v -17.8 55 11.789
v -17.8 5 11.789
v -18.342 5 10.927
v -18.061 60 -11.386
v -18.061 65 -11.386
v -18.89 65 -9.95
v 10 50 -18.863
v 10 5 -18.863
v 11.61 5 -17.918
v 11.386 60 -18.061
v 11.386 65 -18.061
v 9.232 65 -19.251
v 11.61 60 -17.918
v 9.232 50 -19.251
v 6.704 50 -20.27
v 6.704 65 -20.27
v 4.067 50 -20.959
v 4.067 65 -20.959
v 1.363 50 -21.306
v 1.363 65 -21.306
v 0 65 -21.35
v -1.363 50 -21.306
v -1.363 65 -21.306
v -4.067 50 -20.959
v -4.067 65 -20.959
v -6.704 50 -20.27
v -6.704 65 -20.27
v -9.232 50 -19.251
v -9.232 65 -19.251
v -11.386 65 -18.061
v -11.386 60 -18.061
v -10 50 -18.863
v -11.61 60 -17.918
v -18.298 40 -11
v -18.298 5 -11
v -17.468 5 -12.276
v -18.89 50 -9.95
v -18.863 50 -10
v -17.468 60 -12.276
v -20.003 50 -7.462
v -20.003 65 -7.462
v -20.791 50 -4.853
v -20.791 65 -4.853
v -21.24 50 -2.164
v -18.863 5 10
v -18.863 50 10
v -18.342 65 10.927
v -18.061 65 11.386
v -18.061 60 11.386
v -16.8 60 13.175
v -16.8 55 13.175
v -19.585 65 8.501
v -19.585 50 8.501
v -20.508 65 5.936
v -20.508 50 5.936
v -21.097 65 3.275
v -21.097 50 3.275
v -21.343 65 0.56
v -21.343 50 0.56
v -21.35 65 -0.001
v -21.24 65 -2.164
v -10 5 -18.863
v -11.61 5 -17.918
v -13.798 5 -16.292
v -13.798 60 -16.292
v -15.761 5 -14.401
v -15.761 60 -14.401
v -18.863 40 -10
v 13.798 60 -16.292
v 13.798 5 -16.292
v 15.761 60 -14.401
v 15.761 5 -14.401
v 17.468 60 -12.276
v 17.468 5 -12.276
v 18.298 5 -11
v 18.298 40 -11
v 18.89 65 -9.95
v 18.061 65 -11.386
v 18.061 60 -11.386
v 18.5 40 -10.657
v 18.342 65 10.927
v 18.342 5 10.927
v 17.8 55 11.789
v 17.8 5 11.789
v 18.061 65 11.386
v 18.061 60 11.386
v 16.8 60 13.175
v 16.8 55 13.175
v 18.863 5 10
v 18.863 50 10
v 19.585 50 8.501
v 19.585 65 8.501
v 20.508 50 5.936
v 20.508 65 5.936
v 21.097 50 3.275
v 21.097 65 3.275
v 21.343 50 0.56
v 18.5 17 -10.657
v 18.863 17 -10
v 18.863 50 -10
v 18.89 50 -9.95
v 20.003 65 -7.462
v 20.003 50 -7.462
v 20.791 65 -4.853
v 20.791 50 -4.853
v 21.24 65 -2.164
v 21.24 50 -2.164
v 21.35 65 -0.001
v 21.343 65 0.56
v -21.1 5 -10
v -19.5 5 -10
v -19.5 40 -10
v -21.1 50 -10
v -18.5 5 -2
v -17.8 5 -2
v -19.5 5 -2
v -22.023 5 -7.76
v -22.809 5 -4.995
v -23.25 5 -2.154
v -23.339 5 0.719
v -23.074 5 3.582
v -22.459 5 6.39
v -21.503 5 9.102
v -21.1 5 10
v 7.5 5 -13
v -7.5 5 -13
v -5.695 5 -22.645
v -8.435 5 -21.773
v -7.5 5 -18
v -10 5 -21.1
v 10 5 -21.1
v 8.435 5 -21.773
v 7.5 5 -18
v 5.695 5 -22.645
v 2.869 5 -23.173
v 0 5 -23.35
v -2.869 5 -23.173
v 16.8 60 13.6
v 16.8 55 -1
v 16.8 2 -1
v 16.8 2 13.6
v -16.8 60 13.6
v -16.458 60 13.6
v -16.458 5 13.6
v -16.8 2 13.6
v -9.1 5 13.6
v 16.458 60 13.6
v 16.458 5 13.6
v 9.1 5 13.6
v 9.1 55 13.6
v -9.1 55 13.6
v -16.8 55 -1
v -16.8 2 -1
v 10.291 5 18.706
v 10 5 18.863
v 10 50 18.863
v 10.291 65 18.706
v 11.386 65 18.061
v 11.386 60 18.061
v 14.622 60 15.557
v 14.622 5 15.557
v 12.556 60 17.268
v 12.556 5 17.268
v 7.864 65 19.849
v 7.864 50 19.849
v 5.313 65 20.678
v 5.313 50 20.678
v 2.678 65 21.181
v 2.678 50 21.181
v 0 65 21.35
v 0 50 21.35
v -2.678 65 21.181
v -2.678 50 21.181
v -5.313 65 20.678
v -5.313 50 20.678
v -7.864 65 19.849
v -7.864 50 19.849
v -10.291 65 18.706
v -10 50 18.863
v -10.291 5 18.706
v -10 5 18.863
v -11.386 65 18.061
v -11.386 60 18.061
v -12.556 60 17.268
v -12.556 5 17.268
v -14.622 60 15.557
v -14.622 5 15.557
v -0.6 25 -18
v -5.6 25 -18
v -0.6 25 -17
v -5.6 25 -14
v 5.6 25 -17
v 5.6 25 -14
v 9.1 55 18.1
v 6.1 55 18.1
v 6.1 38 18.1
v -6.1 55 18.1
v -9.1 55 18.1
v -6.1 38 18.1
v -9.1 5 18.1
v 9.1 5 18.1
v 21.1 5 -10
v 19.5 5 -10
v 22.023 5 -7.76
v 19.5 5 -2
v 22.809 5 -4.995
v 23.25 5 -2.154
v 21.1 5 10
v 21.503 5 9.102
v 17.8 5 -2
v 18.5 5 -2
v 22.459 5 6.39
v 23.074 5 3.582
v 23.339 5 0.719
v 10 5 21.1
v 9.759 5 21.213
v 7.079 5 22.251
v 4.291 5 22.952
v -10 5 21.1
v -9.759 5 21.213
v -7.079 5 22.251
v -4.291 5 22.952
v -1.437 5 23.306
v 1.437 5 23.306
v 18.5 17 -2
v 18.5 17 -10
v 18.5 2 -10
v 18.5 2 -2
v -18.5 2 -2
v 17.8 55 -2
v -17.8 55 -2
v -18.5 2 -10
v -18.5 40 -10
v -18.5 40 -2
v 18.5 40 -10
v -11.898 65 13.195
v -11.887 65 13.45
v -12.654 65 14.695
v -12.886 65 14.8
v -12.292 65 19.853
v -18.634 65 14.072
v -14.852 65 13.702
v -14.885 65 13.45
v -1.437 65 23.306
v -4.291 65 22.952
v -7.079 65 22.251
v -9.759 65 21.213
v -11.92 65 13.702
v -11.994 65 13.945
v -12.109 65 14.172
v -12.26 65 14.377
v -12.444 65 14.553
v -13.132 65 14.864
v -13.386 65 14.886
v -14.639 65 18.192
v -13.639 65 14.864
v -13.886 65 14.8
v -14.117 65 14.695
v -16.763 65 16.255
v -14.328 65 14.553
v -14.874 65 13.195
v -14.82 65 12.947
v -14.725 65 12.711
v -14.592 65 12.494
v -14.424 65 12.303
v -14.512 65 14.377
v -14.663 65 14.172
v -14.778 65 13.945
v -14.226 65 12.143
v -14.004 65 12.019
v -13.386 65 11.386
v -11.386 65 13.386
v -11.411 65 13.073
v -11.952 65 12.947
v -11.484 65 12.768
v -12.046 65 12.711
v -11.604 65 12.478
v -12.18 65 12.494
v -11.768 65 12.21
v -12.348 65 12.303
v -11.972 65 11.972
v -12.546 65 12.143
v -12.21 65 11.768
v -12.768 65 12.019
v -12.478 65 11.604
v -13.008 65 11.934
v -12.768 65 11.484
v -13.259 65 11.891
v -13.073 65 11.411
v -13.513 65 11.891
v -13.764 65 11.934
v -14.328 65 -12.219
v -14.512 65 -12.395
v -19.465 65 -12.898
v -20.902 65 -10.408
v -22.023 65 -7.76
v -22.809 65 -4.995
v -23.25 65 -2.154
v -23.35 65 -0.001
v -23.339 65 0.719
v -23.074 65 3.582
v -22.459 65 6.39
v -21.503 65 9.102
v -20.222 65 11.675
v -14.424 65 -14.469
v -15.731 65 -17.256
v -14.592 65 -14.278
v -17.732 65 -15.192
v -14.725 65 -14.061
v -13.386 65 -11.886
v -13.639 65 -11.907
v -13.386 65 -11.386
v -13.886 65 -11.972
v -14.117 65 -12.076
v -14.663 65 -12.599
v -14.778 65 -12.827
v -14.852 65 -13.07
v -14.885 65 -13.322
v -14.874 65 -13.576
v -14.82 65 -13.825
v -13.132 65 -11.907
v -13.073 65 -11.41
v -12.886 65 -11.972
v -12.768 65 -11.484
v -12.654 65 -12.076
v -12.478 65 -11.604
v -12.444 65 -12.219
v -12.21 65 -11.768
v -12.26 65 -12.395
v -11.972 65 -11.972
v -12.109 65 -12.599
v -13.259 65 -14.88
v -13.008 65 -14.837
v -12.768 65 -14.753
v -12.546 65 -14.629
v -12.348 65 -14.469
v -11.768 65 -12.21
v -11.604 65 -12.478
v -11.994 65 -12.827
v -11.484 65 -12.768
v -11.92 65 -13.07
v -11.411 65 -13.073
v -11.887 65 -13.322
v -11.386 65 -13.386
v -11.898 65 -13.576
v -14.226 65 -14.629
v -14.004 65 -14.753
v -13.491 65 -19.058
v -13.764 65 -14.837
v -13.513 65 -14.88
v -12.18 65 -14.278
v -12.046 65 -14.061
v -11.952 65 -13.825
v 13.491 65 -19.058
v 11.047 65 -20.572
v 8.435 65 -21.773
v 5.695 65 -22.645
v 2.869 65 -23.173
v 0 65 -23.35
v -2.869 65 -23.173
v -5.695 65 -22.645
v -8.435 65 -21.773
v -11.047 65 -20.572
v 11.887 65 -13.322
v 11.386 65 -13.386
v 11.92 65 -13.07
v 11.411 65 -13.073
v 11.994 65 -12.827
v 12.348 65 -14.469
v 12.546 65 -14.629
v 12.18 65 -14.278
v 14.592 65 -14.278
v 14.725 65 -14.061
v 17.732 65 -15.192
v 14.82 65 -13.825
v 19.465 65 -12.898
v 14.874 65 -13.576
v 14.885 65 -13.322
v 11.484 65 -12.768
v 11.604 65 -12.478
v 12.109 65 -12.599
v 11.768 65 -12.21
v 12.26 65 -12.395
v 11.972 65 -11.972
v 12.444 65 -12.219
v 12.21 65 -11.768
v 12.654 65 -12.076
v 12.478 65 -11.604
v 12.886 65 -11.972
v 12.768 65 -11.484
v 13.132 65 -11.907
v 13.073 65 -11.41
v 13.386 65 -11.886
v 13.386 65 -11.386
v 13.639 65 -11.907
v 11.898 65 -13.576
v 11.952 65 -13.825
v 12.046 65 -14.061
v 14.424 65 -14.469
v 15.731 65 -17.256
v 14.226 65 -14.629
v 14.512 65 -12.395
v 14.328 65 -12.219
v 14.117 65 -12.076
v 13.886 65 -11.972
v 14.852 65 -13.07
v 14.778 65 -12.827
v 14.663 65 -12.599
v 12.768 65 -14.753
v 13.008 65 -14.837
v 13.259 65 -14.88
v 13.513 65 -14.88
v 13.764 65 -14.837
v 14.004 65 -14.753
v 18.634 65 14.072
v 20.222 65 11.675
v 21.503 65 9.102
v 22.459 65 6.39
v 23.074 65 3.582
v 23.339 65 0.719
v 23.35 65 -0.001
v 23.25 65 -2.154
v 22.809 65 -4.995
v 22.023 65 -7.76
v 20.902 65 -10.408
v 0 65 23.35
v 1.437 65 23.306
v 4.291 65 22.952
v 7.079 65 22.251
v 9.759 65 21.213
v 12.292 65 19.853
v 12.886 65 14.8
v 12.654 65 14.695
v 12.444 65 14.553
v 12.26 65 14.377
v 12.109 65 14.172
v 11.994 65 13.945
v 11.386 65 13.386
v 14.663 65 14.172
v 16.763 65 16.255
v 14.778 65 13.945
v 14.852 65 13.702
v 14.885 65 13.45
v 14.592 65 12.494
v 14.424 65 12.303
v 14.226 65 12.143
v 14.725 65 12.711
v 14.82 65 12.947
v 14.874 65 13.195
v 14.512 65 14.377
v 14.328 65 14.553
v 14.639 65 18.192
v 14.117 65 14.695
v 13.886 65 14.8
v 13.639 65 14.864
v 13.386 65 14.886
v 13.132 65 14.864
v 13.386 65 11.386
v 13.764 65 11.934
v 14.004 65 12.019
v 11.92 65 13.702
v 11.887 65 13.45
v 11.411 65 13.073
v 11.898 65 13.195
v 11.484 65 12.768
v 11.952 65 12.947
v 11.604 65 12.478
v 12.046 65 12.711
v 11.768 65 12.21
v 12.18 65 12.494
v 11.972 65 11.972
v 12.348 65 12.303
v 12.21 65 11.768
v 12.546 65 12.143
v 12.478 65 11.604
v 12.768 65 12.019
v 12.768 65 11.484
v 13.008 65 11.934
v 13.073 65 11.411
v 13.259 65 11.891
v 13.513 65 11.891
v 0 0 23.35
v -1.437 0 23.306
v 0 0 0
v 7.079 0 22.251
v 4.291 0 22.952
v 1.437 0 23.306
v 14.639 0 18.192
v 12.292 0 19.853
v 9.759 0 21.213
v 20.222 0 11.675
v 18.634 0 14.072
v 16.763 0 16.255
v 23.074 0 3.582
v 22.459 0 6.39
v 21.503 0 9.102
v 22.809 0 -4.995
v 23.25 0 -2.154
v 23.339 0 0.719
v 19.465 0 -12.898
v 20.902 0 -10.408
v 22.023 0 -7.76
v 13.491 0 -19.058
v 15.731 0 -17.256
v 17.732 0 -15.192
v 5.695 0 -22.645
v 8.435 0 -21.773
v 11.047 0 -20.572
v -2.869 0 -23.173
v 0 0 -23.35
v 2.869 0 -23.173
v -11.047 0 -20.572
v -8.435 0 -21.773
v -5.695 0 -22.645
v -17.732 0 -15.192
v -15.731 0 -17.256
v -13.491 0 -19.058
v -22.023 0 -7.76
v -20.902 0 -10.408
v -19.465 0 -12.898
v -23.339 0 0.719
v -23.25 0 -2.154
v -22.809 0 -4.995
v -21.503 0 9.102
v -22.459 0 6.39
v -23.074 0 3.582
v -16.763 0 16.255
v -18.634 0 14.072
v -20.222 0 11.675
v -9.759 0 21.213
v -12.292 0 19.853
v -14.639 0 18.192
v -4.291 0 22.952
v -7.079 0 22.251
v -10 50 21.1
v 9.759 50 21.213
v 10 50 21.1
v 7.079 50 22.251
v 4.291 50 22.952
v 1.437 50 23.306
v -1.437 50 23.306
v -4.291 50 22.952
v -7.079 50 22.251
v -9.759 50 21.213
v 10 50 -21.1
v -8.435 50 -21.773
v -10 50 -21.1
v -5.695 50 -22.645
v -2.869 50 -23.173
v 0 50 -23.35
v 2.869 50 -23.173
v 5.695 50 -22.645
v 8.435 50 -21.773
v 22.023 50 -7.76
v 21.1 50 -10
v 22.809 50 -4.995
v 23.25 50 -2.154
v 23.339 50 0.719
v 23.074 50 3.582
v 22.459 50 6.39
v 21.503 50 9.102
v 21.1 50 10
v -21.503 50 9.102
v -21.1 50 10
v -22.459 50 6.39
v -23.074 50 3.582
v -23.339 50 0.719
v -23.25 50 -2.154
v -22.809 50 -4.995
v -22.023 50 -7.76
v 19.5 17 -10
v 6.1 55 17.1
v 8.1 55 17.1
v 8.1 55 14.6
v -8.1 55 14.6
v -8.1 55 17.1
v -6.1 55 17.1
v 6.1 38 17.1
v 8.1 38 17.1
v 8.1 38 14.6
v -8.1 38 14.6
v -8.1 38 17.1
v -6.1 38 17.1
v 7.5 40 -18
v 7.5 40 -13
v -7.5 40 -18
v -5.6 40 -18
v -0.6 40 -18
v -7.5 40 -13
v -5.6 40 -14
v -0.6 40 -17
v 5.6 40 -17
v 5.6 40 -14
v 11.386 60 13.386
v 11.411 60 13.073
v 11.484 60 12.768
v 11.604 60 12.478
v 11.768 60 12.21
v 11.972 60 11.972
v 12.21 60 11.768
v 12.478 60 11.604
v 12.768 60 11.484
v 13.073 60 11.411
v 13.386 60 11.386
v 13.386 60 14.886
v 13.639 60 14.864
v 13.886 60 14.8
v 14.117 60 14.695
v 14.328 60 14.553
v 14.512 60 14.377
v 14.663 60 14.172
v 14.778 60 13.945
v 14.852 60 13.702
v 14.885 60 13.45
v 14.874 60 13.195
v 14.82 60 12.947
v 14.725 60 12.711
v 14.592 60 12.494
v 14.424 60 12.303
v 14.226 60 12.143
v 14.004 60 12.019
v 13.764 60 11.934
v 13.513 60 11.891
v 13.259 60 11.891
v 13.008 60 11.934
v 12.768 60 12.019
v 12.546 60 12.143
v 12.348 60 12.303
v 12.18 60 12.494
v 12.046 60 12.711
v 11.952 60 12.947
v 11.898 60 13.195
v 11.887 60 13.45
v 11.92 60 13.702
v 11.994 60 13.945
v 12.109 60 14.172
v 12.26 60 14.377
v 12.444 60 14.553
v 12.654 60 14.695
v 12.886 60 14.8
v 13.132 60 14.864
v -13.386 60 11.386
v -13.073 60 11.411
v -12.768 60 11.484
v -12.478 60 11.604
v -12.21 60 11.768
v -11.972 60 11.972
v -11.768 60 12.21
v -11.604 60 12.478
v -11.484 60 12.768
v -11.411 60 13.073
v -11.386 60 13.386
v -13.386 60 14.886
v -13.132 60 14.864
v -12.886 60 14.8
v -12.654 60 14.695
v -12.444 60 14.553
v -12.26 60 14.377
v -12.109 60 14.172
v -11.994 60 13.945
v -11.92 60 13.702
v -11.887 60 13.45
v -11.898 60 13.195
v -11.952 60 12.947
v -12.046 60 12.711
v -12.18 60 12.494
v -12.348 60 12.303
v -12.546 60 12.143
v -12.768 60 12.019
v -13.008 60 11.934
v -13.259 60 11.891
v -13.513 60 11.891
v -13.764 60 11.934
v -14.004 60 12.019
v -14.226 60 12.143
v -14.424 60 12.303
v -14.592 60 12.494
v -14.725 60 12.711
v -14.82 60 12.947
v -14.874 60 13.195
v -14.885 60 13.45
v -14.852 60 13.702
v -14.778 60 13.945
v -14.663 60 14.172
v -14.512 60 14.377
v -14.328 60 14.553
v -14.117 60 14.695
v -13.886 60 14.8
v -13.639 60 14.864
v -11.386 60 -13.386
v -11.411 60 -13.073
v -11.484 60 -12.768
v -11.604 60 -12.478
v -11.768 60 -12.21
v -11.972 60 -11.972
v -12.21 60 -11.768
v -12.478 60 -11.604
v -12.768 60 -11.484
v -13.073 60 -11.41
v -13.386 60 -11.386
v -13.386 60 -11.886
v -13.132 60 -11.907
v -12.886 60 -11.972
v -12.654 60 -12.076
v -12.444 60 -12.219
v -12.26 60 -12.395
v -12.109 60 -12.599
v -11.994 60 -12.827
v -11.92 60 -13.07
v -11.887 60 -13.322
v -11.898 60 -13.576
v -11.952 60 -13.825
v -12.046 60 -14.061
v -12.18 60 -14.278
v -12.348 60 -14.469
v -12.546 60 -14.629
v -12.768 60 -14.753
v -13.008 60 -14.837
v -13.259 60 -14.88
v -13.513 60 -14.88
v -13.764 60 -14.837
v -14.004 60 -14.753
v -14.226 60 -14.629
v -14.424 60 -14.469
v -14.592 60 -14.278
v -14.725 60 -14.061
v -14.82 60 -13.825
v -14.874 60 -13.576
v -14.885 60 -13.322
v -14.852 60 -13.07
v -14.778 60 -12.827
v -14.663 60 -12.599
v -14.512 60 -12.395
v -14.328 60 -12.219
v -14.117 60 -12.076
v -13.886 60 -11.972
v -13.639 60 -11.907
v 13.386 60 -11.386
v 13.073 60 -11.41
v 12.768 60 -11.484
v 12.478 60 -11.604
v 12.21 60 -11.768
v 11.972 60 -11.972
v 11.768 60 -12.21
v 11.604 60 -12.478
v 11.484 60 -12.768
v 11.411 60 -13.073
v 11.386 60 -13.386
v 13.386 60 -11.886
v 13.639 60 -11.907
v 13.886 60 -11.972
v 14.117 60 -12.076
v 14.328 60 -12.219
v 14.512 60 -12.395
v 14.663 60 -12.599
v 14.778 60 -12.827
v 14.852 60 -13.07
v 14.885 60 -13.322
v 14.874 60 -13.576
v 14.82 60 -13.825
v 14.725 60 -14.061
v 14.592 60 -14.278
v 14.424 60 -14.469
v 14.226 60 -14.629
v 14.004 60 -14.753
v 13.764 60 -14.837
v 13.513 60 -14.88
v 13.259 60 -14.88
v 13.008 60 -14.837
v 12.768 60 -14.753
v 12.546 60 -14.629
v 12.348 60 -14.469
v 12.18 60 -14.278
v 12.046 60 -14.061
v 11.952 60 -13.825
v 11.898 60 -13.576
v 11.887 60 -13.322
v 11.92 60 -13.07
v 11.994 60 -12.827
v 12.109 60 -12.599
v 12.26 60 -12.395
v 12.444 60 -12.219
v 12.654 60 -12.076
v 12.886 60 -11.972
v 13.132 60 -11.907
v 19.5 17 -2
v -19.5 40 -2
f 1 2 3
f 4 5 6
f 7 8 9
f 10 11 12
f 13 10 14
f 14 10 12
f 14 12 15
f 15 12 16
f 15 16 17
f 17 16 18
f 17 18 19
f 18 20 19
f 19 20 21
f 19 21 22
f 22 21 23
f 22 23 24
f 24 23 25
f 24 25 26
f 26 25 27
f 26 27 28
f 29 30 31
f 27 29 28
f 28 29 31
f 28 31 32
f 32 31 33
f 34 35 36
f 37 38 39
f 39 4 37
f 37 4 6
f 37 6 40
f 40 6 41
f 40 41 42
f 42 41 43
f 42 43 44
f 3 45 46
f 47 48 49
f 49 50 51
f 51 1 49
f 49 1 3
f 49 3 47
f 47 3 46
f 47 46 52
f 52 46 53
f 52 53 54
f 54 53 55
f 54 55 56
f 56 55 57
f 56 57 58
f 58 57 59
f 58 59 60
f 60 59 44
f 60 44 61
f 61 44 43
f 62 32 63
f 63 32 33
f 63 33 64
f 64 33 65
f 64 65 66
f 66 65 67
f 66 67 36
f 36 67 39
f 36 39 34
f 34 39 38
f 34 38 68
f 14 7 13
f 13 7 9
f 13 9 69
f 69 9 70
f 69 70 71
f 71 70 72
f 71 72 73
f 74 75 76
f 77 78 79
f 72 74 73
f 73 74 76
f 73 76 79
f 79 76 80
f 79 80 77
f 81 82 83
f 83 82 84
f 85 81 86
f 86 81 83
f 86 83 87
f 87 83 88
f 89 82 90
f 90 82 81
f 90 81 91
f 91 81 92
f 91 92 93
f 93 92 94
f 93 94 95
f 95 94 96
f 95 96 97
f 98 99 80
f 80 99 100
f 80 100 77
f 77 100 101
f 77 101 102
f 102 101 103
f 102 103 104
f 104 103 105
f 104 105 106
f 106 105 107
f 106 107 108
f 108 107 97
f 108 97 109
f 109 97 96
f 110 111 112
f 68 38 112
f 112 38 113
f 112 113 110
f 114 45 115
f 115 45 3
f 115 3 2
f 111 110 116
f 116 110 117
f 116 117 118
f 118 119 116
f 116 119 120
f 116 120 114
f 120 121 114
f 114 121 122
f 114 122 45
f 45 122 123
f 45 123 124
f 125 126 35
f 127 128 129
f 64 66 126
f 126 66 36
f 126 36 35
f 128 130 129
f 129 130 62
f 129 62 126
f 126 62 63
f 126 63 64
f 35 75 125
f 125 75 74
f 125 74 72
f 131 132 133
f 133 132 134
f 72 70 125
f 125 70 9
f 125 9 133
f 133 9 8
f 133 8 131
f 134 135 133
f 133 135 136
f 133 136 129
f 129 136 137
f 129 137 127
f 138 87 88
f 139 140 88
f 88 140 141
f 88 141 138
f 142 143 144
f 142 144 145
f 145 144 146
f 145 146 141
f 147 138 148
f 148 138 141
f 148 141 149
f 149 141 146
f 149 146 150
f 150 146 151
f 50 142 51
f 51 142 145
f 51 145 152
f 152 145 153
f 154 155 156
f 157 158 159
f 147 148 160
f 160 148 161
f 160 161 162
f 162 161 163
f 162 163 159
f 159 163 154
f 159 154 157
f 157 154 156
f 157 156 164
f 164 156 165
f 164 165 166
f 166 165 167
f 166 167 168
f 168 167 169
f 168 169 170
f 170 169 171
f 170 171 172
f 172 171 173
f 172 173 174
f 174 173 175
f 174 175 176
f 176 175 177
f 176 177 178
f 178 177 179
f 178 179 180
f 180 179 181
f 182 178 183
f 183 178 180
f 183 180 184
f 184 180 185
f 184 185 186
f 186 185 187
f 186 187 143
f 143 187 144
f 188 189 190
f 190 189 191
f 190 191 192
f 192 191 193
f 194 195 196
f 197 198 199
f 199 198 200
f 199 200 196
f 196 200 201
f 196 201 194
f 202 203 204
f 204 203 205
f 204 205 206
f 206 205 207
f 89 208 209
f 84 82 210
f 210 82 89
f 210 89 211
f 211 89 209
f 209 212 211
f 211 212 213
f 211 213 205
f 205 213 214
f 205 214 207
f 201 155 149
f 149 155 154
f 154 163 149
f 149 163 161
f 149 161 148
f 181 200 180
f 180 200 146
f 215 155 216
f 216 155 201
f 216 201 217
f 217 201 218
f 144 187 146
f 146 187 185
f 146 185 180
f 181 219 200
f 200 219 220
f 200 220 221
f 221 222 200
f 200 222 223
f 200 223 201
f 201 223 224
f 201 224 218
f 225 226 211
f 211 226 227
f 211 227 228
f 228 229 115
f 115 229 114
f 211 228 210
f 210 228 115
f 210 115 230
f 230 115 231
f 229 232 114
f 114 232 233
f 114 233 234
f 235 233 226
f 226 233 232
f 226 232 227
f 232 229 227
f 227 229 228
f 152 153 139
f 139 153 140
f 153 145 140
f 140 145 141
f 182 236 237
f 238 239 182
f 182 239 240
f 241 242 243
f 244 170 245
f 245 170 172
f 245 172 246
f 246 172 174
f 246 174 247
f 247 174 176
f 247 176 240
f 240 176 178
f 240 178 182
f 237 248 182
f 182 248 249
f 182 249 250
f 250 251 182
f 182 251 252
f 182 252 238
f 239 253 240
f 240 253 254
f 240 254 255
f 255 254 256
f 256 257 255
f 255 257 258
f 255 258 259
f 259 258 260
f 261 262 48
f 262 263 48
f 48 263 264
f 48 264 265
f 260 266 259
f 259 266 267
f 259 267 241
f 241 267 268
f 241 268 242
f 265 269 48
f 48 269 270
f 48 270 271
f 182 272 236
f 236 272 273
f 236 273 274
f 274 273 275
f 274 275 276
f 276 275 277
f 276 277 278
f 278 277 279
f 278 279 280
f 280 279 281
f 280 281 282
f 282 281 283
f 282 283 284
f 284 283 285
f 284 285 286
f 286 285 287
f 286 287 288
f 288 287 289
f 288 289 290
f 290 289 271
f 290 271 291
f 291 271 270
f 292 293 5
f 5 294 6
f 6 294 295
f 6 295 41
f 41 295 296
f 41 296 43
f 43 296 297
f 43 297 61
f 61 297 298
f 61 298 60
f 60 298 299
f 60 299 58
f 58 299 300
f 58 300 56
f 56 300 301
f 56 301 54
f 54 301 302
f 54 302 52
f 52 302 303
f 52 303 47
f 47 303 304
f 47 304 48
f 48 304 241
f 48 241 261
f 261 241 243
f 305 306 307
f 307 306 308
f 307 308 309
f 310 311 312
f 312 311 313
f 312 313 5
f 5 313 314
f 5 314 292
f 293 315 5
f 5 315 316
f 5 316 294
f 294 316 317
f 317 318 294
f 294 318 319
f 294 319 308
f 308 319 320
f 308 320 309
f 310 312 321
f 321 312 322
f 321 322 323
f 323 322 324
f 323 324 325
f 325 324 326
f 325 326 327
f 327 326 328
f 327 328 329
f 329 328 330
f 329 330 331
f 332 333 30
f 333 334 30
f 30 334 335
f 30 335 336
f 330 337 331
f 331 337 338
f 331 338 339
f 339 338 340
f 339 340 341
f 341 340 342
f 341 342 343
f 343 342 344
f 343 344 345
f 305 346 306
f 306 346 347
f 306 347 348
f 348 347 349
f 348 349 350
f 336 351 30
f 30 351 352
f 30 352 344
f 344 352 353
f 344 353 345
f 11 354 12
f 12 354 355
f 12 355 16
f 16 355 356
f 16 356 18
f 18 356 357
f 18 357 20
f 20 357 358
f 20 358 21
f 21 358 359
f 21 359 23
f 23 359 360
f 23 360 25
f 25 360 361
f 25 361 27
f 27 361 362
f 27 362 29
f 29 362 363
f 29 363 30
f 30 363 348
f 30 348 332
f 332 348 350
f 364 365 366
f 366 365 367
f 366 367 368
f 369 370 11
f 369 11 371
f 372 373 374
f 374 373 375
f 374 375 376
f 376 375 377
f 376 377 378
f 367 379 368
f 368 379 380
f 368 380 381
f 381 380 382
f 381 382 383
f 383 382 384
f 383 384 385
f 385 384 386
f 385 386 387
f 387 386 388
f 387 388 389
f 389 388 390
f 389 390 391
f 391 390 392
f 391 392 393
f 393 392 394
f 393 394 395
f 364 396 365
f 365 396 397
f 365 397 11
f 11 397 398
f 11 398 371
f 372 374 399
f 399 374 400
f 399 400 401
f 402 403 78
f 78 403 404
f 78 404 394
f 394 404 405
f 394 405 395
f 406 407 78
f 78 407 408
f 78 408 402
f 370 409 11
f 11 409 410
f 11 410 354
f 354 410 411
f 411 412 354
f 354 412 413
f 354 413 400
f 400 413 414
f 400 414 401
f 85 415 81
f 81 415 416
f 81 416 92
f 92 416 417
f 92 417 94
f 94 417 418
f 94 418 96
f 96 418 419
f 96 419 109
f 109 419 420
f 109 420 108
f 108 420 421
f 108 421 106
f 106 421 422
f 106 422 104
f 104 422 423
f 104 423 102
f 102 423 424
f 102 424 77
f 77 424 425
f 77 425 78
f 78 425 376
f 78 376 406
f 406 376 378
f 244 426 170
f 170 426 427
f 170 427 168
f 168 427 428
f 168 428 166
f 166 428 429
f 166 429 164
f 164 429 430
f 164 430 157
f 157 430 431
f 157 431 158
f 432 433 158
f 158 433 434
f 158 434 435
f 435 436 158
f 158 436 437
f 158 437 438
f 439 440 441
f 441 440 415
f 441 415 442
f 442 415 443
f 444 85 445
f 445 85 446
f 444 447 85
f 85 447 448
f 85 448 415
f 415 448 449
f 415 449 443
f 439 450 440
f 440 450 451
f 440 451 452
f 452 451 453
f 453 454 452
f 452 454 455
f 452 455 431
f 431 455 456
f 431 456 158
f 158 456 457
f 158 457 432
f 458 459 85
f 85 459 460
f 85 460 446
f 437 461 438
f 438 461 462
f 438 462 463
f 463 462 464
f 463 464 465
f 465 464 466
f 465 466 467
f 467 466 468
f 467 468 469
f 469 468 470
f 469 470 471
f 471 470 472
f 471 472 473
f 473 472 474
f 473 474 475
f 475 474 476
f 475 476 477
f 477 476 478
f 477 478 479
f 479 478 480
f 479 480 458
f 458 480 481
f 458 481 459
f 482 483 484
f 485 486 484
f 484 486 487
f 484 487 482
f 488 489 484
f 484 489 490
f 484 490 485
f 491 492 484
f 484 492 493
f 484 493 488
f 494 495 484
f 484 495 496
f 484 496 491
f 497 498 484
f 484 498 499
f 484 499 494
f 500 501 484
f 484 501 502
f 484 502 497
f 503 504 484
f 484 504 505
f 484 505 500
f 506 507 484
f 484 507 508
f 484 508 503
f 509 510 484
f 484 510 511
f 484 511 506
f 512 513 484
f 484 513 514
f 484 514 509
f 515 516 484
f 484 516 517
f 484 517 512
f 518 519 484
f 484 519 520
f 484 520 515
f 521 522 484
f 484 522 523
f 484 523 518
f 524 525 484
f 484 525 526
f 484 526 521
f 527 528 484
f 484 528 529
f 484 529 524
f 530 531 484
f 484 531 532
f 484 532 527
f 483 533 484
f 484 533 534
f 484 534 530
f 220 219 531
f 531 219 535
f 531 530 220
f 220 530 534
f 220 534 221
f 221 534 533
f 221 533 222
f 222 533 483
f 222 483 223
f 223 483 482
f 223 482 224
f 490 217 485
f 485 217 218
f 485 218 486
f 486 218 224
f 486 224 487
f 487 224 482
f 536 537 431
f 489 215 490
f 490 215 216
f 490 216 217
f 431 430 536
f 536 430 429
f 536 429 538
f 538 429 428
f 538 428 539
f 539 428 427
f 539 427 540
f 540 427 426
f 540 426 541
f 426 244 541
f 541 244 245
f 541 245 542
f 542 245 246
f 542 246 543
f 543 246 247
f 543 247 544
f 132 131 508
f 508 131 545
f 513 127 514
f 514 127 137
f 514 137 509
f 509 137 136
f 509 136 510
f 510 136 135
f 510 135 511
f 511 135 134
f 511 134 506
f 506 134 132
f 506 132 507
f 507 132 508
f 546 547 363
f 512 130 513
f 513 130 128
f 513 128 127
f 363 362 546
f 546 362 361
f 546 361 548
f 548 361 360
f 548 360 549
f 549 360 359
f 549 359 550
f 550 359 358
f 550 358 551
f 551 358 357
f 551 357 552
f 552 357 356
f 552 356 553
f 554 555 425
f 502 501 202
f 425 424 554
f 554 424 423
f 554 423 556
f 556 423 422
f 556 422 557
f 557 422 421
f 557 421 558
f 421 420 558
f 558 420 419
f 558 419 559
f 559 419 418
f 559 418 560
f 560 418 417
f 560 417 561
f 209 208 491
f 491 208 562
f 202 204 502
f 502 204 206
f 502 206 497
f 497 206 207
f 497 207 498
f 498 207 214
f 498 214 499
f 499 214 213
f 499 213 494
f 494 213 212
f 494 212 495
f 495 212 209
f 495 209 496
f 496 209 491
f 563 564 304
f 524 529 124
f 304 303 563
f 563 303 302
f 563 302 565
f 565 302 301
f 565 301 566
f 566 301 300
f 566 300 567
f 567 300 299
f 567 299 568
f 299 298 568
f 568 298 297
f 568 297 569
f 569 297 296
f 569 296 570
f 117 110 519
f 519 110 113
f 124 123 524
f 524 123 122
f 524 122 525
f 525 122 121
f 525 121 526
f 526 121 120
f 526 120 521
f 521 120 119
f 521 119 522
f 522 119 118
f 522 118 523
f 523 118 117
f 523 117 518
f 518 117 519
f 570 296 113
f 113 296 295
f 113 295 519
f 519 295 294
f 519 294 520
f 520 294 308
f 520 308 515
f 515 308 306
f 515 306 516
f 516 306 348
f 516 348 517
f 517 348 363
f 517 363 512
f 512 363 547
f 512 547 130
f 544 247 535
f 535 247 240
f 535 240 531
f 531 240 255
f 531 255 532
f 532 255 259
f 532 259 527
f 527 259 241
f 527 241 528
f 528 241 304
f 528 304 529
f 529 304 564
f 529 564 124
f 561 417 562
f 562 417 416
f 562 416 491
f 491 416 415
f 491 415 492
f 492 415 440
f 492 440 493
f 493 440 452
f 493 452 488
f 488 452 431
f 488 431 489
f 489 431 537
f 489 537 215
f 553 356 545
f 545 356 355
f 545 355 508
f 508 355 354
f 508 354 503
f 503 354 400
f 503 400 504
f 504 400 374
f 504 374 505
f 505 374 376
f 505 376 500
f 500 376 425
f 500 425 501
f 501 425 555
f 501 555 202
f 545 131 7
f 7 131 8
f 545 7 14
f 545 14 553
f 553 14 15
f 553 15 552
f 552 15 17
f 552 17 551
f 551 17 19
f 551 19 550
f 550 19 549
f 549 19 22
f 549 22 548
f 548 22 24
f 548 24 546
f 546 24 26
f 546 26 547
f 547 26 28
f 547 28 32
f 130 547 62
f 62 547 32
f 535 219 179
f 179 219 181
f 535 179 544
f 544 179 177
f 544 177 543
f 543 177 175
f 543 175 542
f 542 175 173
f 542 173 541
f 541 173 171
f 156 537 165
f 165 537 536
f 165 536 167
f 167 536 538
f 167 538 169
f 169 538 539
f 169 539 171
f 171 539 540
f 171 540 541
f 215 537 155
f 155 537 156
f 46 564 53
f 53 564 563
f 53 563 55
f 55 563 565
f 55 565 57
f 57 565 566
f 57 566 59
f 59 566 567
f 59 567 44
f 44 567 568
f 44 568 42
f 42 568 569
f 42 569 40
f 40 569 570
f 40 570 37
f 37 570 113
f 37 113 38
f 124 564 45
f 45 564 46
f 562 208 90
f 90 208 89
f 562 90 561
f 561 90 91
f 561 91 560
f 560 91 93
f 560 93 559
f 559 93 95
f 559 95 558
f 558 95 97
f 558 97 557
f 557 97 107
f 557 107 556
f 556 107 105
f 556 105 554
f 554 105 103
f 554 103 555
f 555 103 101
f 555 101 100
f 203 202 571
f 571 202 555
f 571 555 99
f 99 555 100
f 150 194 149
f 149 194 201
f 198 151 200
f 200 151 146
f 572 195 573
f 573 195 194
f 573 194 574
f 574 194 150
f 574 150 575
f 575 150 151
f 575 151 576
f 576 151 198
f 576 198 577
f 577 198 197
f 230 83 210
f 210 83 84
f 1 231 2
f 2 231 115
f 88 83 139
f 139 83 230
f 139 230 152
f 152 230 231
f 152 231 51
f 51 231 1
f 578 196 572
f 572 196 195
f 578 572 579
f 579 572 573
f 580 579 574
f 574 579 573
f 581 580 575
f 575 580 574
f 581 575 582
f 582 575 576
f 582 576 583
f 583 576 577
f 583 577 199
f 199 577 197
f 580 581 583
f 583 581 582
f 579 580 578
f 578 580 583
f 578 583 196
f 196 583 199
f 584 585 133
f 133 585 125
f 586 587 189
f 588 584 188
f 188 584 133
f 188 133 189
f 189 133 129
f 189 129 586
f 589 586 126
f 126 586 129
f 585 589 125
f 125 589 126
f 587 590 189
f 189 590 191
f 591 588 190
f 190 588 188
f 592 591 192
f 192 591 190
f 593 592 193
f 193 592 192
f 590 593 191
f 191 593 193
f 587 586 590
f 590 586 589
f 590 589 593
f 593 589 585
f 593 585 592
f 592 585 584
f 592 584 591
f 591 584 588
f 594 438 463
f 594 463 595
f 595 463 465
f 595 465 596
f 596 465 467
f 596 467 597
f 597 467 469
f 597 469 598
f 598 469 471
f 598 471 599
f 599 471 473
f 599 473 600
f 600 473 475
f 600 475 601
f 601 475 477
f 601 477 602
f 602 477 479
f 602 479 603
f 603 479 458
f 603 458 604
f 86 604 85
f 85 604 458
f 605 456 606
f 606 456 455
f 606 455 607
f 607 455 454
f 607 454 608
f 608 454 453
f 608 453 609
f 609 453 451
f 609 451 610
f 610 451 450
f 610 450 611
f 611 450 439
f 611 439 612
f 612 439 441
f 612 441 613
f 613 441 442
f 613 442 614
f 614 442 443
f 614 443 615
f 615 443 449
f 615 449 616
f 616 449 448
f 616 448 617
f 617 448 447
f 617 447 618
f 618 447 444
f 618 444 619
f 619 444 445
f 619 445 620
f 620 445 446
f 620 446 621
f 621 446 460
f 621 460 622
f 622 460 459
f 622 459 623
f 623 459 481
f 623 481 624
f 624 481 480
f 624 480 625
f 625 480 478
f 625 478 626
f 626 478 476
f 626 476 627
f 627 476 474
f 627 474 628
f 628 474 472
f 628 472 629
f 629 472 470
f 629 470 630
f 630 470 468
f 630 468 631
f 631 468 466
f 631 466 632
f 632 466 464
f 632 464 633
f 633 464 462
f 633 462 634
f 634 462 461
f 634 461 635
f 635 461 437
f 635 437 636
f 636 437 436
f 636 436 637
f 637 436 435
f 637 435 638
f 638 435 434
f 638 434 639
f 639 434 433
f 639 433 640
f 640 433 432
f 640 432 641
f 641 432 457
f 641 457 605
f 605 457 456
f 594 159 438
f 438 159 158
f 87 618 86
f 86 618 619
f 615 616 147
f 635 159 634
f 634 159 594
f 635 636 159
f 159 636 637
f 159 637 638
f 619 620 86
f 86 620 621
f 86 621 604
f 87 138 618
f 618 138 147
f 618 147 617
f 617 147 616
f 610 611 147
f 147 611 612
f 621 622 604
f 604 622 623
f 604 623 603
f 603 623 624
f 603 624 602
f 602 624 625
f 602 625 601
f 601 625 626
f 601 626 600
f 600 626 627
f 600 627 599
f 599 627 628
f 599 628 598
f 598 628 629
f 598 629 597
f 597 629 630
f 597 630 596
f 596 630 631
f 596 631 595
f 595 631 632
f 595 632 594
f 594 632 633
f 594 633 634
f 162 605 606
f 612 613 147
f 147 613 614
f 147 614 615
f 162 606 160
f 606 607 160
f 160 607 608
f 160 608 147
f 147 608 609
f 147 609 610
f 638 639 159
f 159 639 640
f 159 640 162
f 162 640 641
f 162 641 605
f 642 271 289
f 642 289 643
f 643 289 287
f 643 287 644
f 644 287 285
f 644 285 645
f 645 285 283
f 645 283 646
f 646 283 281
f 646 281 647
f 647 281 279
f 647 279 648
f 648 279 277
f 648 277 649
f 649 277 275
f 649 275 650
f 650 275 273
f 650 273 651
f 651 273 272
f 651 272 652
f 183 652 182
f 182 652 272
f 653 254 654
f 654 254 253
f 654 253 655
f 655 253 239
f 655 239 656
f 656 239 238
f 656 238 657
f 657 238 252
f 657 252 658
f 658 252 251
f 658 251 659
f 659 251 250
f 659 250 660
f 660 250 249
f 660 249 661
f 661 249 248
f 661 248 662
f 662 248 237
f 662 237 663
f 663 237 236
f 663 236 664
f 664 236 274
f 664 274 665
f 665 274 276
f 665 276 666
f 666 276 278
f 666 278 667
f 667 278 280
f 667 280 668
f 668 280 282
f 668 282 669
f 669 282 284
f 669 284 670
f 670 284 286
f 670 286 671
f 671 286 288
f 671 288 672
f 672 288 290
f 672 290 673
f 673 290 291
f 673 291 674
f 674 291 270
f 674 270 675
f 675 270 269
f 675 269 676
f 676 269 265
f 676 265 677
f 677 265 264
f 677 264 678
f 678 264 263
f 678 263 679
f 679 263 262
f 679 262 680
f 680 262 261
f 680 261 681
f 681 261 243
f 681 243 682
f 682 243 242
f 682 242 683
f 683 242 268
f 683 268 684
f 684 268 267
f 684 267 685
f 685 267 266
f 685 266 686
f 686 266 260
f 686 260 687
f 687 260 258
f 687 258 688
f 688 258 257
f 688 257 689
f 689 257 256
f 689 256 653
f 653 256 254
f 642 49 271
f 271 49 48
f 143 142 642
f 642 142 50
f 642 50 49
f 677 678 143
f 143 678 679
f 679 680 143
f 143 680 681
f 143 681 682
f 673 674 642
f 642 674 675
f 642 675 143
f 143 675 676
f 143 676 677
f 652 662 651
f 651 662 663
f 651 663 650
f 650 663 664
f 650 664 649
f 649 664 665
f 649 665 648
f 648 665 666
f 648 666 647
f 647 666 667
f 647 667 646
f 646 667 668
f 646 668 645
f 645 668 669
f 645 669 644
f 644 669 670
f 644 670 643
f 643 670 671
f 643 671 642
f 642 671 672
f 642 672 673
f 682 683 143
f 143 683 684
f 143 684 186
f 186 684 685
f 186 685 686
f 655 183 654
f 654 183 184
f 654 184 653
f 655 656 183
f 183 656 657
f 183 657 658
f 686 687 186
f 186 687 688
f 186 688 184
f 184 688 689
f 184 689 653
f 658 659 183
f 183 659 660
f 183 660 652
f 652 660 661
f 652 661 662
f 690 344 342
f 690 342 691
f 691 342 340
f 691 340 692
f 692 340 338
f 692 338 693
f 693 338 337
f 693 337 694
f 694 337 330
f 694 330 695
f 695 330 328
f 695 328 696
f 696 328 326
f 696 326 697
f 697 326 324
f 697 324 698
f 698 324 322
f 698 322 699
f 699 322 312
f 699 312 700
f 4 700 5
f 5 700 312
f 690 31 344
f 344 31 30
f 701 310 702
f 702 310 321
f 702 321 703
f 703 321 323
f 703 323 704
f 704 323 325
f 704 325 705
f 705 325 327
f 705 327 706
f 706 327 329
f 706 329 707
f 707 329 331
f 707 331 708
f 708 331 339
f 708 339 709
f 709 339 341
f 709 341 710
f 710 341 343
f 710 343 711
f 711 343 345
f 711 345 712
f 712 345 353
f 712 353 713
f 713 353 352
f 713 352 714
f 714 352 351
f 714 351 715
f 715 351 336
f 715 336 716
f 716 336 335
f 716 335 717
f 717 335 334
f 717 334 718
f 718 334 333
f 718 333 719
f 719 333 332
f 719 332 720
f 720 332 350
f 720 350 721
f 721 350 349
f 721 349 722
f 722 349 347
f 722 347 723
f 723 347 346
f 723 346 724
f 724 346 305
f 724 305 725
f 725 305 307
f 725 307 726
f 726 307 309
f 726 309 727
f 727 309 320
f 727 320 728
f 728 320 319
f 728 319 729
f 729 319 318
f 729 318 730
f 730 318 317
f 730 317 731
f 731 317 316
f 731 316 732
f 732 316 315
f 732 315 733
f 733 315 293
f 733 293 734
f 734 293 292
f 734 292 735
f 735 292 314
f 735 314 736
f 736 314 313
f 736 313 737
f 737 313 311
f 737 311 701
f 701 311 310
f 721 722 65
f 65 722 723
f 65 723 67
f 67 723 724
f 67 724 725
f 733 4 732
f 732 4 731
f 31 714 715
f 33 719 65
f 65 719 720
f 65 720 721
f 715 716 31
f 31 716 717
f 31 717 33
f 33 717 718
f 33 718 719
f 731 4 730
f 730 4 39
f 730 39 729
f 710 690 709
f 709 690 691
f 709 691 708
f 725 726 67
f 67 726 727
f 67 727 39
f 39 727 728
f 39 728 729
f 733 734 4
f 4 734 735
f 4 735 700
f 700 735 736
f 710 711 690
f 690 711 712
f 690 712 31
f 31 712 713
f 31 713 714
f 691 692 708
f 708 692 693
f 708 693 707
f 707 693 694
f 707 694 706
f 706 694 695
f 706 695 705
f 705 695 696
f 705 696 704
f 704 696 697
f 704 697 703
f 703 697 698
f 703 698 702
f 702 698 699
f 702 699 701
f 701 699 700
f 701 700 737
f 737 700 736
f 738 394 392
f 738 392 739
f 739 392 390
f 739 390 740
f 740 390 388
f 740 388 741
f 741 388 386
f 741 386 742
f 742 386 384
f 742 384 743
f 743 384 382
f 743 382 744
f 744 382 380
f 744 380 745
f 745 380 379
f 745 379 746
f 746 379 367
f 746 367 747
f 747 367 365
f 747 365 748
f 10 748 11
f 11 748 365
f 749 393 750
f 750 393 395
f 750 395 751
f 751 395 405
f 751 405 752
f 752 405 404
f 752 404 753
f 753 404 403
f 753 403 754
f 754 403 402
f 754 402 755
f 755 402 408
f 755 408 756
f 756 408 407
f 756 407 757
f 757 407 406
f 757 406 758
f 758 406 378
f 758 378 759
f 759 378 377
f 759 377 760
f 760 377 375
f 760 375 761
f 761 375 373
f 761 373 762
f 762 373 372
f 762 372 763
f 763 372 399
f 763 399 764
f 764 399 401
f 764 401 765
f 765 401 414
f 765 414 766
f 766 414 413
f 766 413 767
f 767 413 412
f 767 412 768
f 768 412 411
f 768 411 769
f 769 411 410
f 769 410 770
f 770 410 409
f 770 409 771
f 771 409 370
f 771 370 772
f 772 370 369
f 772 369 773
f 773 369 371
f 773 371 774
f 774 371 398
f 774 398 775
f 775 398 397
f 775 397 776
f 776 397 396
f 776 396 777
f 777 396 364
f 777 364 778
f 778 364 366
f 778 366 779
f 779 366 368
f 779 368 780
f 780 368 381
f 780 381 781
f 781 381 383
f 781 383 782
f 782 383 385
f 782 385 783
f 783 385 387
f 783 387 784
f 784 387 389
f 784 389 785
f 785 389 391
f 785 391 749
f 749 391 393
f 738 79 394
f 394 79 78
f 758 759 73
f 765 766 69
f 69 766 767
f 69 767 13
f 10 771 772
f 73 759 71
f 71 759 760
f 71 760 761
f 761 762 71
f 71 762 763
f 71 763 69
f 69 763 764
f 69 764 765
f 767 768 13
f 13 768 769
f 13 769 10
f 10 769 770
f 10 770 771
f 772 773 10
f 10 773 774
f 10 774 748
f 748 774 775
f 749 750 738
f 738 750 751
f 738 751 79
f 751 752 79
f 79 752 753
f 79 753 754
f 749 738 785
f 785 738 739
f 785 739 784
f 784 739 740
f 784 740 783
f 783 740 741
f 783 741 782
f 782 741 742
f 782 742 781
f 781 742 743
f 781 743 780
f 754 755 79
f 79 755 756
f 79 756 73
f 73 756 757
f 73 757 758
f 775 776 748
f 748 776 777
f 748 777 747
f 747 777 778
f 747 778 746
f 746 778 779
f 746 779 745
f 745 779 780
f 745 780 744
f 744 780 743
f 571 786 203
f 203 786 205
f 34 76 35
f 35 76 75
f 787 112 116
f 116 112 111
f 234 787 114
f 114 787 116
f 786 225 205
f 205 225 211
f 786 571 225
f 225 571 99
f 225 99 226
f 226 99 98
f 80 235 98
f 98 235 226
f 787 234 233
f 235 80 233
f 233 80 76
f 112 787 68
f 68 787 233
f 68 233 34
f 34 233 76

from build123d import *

# Parameters (mm, degrees)
ESQUISSE1_R                  = 23.35
BOSS_EXTRU_1_DEPTH           = 5
ESQUISSE2_W                  = 37
ESQUISSE2_H                  = 8
ESQUISSE2_W_2                = 33.6
ESQUISSE2_H_2                = 14.6
ENL_V_MAT_EXTRU_4_DEPTH      = 3
ESQUISSE10_R                 = 23.35
BOSS_EXTRU_2_DEPTH           = 60
ENL_V_MAT_EXTRU_5_DEPTH      = 73.90709842
ENL_V_MAT_EXTRU_5_DEPTH_BACK = 73.90709842
ESQUISSE11_W                 = 20
ESQUISSE11_H                 = 45
ENL_V_MAT_EXTRU_6_DEPTH      = 73.90709842
ENL_V_MAT_EXTRU_6_DEPTH_BACK = 73.90709842
ESQUISSE12_W                 = 20
ESQUISSE12_H                 = 45
ESQUISSE13_W                 = 18.2
ESQUISSE13_H                 = 4.5
ESQUISSE13_W_2               = 16.2
ESQUISSE13_H_2               = 2.5
BOSS_EXTRU_4_DEPTH           = 50
ENL_V_MAT_EXTRU_7_DEPTH      = 65.151734193
ENL_V_MAT_EXTRU_7_DEPTH_BACK = 17
ESQUISSE16_W                 = 15
ESQUISSE16_H                 = 5
BOSS_EXTRU_5_DEPTH           = 20
BOSS_EXTRU_6_DEPTH           = 15
BOSS_EXTRU_7_START           = -5
ESQUISSE18_R                 = 1.5
BOSS_EXTRU_7_DEPTH           = 5
BOSS_EXTRU_8_DEPTH           = 12
BOSS_EXTRU_9_DEPTH           = 23


with BuildPart() as part:
    # Esquisse1 → Boss.-Extru.1 (new body)
    with BuildSketch(Plane(origin=(0, 0, 0), x_dir=(1, 0, 0), z_dir=(0, 1, 0))):
        with Locations(Location((0, 0, 0), (0, 0, 270))):
            Circle(ESQUISSE1_R)
    extrude(amount=BOSS_EXTRU_1_DEPTH)

    # Esquisse2 → Enlèv. mat.-Extru.4 (cut)
    with BuildSketch(Plane(origin=(0, 5, 0), x_dir=(1, 0, 0), z_dir=(0, 1, 0))):
        with Locations((0, 6)):
            Rectangle(ESQUISSE2_W, ESQUISSE2_H)
        with Locations((0, -6.3)):
            Rectangle(ESQUISSE2_W_2, ESQUISSE2_H_2)
    extrude(amount=-ENL_V_MAT_EXTRU_4_DEPTH, mode=Mode.SUBTRACT)

    # Esquisse10 → Boss.-Extru.2 (add)
    with BuildSketch(Plane(origin=(0, 5, 0), x_dir=(1, 0, 0), z_dir=(0, 1, 0))):
        with Locations(Location((0, 0, 0), (0, 0, 270))):
            Circle(ESQUISSE10_R)
        with BuildLine():
            ThreePointArc((-16.8, -13.175071157), (-6.969307713, 20.180467041), (21.35, 0))
            ThreePointArc((21.35, 0), (20.180467041, -6.969307713), (16.8, -13.175071157))
            Line((16.8, -13.175071157), (16.8, -13.6))
            Line((16.8, -13.6), (16.457900838, -13.6))
            ThreePointArc((16.457900838, -13.6), (0, -21.35), (-16.457900838, -13.6))
            Line((-16.457900838, -13.6), (-16.8, -13.6))
            Line((-16.8, -13.6), (-16.8, -13.175071157))
        make_face(mode=Mode.SUBTRACT)
    extrude(amount=BOSS_EXTRU_2_DEPTH)

    # Esquisse11 → Enlèv. mat.-Extru.5 (cut, two sides: drawn at the far end of the back side and taken through both)
    with BuildSketch(Plane.XY.offset(-ENL_V_MAT_EXTRU_5_DEPTH_BACK)):
        with Locations((0, 27.5)):
            Rectangle(ESQUISSE11_W, ESQUISSE11_H)
    extrude(amount=ENL_V_MAT_EXTRU_5_DEPTH + ENL_V_MAT_EXTRU_5_DEPTH_BACK, mode=Mode.SUBTRACT)

    # Esquisse12 → Enlèv. mat.-Extru.6 (cut, two sides: drawn at the far end of the back side and taken through both)
    with BuildSketch(Plane(origin=(0, 0, 0), x_dir=(0, 0, -1), z_dir=(1, 0, 0)).offset(-ENL_V_MAT_EXTRU_6_DEPTH_BACK)):
        with Locations((0, 27.5)):
            Rectangle(ESQUISSE12_W, ESQUISSE12_H)
    extrude(amount=ENL_V_MAT_EXTRU_6_DEPTH + ENL_V_MAT_EXTRU_6_DEPTH_BACK, mode=Mode.SUBTRACT)

    # Esquisse13 → Boss.-Extru.4 (add)
    # profile 1 of 3: a face of its own
    with BuildSketch(Plane(origin=(0, 5, 0), x_dir=(1, 0, 0), z_dir=(0, 1, 0))):
        with BuildLine():
            Line((17.8, 2), (-17.8, 2))
            Line((-17.8, 2), (-17.8, -11.789083934))
            ThreePointArc((-17.8, -11.789083934), (-17.31387421, -12.49208789), (-16.8, -13.175071157))
            Line((-16.8, -13.175071157), (-16.8, 1))
            Line((-16.8, 1), (16.8, 1))
            Line((16.8, 1), (16.8, -13.175071157))
            ThreePointArc((16.8, -13.175071157), (17.31387421, -12.49208789), (17.8, -11.789083934))
            Line((17.8, -11.789083934), (17.8, 2))
        make_face()
    # profile 2 of 3: a face of its own
    with BuildSketch(Plane(origin=(0, 5, 0), x_dir=(1, 0, 0), z_dir=(0, 1, 0))):
        with Locations((0, -15.85)):
            Rectangle(ESQUISSE13_W, ESQUISSE13_H)
        with Locations((0, -15.85)):
            Rectangle(ESQUISSE13_W_2, ESQUISSE13_H_2, mode=Mode.SUBTRACT)
    # profile 3 of 3: a face of its own
    with BuildSketch(Plane(origin=(0, 5, 0), x_dir=(1, 0, 0), z_dir=(0, 1, 0))):
        with Locations((0, -15.85)):
            Rectangle(ESQUISSE13_W_2, ESQUISSE13_H_2)
    extrude(amount=BOSS_EXTRU_4_DEPTH)

    # Esquisse15 → Enlèv. mat.-Extru.7 (cut, two sides: drawn at the far end of the back side and taken through both)
    with BuildSketch(Plane(origin=(0, 55, 0), x_dir=(1, 0, 0), z_dir=(0, 1, 0)).offset(-ENL_V_MAT_EXTRU_7_DEPTH_BACK)):
        Polygon((8.1, -14.6), (-8.1, -14.6), (-8.1, -17.1), (-6.1, -17.1), (-6.1, -18.1), (6.1, -18.1), (6.1, -17.1), (8.1, -17.1), align=None)
    extrude(amount=ENL_V_MAT_EXTRU_7_DEPTH + ENL_V_MAT_EXTRU_7_DEPTH_BACK, mode=Mode.SUBTRACT)

    # Esquisse16 → Boss.-Extru.5 (add)
    with BuildSketch(Plane(origin=(0, 5, 0), x_dir=(1, 0, 0), z_dir=(0, 1, 0))):
        with Locations((0, 15.5)):
            Rectangle(ESQUISSE16_W, ESQUISSE16_H)
    extrude(amount=BOSS_EXTRU_5_DEPTH)

    # Esquisse17 → Boss.-Extru.6 (add)
    with BuildSketch(Plane(origin=(0, 25, 0), x_dir=(1, 0, 0), z_dir=(0, 1, 0))):
        Polygon((7.5, 18), (-0.6, 18), (-0.6, 17), (5.6, 17), (5.6, 14), (-5.6, 14), (-5.6, 16.758406292), (-5.6, 18), (-7.5, 18), (-7.5, 13), (7.5, 13), align=None)
    extrude(amount=BOSS_EXTRU_6_DEPTH)

    # Esquisse18 → Boss.-Extru.7 (add)
    # profile 1 of 4: a face of its own
    with BuildSketch(Plane(origin=(0, 65, 0), x_dir=(1, 0, 0), z_dir=(0, 1, 0)).offset(BOSS_EXTRU_7_START)):
        with BuildLine():
            Line((-11.385882097, 13.385882097), (-11.385882097, 20.385882097))
            ThreePointArc((-11.385882097, 20.385882097), (-16.510943341, 16.510943341), (-20.385882097, 11.385882097))
            Line((-20.385882097, 11.385882097), (-13.385882097, 11.385882097))
            ThreePointArc((-13.385882097, 11.385882097), (-11.971668535, 11.971668535), (-11.385882097, 13.385882097))
        make_face()
        with Locations(Location((-13.385882097, 13.385882097, 0), (0, 0, 270))):
            Circle(ESQUISSE18_R, mode=Mode.SUBTRACT)
    # profile 2 of 4: a face of its own
    with BuildSketch(Plane(origin=(0, 65, 0), x_dir=(1, 0, 0), z_dir=(0, 1, 0)).offset(BOSS_EXTRU_7_START)):
        with BuildLine():
            ThreePointArc((20.385882097, 11.385882097), (16.510943341, 16.510943341), (11.385882097, 20.385882097))
            Line((11.385882097, 20.385882097), (11.385882097, 13.385882097))
            ThreePointArc((11.385882097, 13.385882097), (11.971668535, 11.971668535), (13.385882097, 11.385882097))
            Line((13.385882097, 11.385882097), (20.385882097, 11.385882097))
        make_face()
        with Locations(Location((13.385882097, 13.385882097, 0), (0, 0, 270))):
            Circle(ESQUISSE18_R, mode=Mode.SUBTRACT)
    # profile 3 of 4: a face of its own
    with BuildSketch(Plane(origin=(0, 65, 0), x_dir=(1, 0, 0), z_dir=(0, 1, 0)).offset(BOSS_EXTRU_7_START)):
        with BuildLine():
            Line((-13.385882097, -11.385882097), (-20.385882097, -11.385882097))
            ThreePointArc((-20.385882097, -11.385882097), (-16.510943341, -16.510943341), (-11.385882097, -20.385882097))
            Line((-11.385882097, -20.385882097), (-11.385882097, -13.385882097))
            ThreePointArc((-11.385882097, -13.385882097), (-11.971668535, -11.971668535), (-13.385882097, -11.385882097))
        make_face()
        with Locations(Location((-13.385882097, -13.385882097, 0), (0, 0, 270))):
            Circle(ESQUISSE18_R, mode=Mode.SUBTRACT)
    # profile 4 of 4: a face of its own
    with BuildSketch(Plane(origin=(0, 65, 0), x_dir=(1, 0, 0), z_dir=(0, 1, 0)).offset(BOSS_EXTRU_7_START)):
        with BuildLine():
            ThreePointArc((11.385882097, -20.385882097), (16.510943341, -16.510943341), (20.385882097, -11.385882097))
            Line((20.385882097, -11.385882097), (13.385882097, -11.385882097))
            ThreePointArc((13.385882097, -11.385882097), (11.971668535, -11.971668535), (11.385882097, -13.385882097))
            Line((11.385882097, -13.385882097), (11.385882097, -20.385882097))
        make_face()
        with Locations(Location((13.385882097, -13.385882097, 0), (0, 0, 270))):
            Circle(ESQUISSE18_R, mode=Mode.SUBTRACT)
    extrude(amount=BOSS_EXTRU_7_DEPTH)

    # Esquisse33 → Boss.-Extru.8 (add)
    with BuildSketch(Plane(origin=(0, 5, 0), x_dir=(1, 0, 0), z_dir=(0, 1, 0))):
        with BuildLine():
            Line((-19.5, 2), (-18.5, 2))
            Line((-18.5, 2), (-18.5, 10))
            Line((-18.5, 10), (18.5, 10))
            Line((18.5, 10), (18.5, 2))
            Line((18.5, 2), (19.5, 2))
            Line((19.5, 2), (19.5, 8.693244504))
            Line((19.5, 8.693244504), (19.5, 10))
            Line((19.5, 10), (18.863257937, 10))
            ThreePointArc((18.863257937, 10), (18.587432982, 10.503800986), (18.298155645, 11))
            Line((18.298155645, 11), (18.128988944, 11))
            Line((18.128988944, 11), (-18.298155645, 11))
            ThreePointArc((-18.298155645, 11), (-18.587432982, 10.503800986), (-18.863257937, 10))
            Line((-18.863257937, 10), (-19.5, 10))
            Line((-19.5, 10), (-19.5, 8.693244504))
            Line((-19.5, 8.693244504), (-19.5, 2))
        make_face()
    extrude(amount=BOSS_EXTRU_8_DEPTH)

    # Esquisse34 → Boss.-Extru.9 (add)
    with BuildSketch(Plane(origin=(0, 17, 0), x_dir=(1, 0, 0), z_dir=(0, 1, 0))):
        with BuildLine():
            Line((-18.5, 10), (18.5, 10))
            Line((18.5, 10), (18.5, 10.657039927))
            ThreePointArc((18.5, 10.657039927), (18.399876905, 10.828990252), (18.298155645, 11))
            Line((18.298155645, 11), (-18.298155645, 11))
            ThreePointArc((-18.298155645, 11), (-18.587432982, 10.503800986), (-18.863257937, 10))
            Line((-18.863257937, 10), (-19.5, 10))
            Line((-19.5, 10), (-19.5, 2))
            Line((-19.5, 2), (-18.5, 2))
            Line((-18.5, 2), (-18.5, 10))
        make_face()
    extrude(amount=BOSS_EXTRU_9_DEPTH)


solid = part.part
